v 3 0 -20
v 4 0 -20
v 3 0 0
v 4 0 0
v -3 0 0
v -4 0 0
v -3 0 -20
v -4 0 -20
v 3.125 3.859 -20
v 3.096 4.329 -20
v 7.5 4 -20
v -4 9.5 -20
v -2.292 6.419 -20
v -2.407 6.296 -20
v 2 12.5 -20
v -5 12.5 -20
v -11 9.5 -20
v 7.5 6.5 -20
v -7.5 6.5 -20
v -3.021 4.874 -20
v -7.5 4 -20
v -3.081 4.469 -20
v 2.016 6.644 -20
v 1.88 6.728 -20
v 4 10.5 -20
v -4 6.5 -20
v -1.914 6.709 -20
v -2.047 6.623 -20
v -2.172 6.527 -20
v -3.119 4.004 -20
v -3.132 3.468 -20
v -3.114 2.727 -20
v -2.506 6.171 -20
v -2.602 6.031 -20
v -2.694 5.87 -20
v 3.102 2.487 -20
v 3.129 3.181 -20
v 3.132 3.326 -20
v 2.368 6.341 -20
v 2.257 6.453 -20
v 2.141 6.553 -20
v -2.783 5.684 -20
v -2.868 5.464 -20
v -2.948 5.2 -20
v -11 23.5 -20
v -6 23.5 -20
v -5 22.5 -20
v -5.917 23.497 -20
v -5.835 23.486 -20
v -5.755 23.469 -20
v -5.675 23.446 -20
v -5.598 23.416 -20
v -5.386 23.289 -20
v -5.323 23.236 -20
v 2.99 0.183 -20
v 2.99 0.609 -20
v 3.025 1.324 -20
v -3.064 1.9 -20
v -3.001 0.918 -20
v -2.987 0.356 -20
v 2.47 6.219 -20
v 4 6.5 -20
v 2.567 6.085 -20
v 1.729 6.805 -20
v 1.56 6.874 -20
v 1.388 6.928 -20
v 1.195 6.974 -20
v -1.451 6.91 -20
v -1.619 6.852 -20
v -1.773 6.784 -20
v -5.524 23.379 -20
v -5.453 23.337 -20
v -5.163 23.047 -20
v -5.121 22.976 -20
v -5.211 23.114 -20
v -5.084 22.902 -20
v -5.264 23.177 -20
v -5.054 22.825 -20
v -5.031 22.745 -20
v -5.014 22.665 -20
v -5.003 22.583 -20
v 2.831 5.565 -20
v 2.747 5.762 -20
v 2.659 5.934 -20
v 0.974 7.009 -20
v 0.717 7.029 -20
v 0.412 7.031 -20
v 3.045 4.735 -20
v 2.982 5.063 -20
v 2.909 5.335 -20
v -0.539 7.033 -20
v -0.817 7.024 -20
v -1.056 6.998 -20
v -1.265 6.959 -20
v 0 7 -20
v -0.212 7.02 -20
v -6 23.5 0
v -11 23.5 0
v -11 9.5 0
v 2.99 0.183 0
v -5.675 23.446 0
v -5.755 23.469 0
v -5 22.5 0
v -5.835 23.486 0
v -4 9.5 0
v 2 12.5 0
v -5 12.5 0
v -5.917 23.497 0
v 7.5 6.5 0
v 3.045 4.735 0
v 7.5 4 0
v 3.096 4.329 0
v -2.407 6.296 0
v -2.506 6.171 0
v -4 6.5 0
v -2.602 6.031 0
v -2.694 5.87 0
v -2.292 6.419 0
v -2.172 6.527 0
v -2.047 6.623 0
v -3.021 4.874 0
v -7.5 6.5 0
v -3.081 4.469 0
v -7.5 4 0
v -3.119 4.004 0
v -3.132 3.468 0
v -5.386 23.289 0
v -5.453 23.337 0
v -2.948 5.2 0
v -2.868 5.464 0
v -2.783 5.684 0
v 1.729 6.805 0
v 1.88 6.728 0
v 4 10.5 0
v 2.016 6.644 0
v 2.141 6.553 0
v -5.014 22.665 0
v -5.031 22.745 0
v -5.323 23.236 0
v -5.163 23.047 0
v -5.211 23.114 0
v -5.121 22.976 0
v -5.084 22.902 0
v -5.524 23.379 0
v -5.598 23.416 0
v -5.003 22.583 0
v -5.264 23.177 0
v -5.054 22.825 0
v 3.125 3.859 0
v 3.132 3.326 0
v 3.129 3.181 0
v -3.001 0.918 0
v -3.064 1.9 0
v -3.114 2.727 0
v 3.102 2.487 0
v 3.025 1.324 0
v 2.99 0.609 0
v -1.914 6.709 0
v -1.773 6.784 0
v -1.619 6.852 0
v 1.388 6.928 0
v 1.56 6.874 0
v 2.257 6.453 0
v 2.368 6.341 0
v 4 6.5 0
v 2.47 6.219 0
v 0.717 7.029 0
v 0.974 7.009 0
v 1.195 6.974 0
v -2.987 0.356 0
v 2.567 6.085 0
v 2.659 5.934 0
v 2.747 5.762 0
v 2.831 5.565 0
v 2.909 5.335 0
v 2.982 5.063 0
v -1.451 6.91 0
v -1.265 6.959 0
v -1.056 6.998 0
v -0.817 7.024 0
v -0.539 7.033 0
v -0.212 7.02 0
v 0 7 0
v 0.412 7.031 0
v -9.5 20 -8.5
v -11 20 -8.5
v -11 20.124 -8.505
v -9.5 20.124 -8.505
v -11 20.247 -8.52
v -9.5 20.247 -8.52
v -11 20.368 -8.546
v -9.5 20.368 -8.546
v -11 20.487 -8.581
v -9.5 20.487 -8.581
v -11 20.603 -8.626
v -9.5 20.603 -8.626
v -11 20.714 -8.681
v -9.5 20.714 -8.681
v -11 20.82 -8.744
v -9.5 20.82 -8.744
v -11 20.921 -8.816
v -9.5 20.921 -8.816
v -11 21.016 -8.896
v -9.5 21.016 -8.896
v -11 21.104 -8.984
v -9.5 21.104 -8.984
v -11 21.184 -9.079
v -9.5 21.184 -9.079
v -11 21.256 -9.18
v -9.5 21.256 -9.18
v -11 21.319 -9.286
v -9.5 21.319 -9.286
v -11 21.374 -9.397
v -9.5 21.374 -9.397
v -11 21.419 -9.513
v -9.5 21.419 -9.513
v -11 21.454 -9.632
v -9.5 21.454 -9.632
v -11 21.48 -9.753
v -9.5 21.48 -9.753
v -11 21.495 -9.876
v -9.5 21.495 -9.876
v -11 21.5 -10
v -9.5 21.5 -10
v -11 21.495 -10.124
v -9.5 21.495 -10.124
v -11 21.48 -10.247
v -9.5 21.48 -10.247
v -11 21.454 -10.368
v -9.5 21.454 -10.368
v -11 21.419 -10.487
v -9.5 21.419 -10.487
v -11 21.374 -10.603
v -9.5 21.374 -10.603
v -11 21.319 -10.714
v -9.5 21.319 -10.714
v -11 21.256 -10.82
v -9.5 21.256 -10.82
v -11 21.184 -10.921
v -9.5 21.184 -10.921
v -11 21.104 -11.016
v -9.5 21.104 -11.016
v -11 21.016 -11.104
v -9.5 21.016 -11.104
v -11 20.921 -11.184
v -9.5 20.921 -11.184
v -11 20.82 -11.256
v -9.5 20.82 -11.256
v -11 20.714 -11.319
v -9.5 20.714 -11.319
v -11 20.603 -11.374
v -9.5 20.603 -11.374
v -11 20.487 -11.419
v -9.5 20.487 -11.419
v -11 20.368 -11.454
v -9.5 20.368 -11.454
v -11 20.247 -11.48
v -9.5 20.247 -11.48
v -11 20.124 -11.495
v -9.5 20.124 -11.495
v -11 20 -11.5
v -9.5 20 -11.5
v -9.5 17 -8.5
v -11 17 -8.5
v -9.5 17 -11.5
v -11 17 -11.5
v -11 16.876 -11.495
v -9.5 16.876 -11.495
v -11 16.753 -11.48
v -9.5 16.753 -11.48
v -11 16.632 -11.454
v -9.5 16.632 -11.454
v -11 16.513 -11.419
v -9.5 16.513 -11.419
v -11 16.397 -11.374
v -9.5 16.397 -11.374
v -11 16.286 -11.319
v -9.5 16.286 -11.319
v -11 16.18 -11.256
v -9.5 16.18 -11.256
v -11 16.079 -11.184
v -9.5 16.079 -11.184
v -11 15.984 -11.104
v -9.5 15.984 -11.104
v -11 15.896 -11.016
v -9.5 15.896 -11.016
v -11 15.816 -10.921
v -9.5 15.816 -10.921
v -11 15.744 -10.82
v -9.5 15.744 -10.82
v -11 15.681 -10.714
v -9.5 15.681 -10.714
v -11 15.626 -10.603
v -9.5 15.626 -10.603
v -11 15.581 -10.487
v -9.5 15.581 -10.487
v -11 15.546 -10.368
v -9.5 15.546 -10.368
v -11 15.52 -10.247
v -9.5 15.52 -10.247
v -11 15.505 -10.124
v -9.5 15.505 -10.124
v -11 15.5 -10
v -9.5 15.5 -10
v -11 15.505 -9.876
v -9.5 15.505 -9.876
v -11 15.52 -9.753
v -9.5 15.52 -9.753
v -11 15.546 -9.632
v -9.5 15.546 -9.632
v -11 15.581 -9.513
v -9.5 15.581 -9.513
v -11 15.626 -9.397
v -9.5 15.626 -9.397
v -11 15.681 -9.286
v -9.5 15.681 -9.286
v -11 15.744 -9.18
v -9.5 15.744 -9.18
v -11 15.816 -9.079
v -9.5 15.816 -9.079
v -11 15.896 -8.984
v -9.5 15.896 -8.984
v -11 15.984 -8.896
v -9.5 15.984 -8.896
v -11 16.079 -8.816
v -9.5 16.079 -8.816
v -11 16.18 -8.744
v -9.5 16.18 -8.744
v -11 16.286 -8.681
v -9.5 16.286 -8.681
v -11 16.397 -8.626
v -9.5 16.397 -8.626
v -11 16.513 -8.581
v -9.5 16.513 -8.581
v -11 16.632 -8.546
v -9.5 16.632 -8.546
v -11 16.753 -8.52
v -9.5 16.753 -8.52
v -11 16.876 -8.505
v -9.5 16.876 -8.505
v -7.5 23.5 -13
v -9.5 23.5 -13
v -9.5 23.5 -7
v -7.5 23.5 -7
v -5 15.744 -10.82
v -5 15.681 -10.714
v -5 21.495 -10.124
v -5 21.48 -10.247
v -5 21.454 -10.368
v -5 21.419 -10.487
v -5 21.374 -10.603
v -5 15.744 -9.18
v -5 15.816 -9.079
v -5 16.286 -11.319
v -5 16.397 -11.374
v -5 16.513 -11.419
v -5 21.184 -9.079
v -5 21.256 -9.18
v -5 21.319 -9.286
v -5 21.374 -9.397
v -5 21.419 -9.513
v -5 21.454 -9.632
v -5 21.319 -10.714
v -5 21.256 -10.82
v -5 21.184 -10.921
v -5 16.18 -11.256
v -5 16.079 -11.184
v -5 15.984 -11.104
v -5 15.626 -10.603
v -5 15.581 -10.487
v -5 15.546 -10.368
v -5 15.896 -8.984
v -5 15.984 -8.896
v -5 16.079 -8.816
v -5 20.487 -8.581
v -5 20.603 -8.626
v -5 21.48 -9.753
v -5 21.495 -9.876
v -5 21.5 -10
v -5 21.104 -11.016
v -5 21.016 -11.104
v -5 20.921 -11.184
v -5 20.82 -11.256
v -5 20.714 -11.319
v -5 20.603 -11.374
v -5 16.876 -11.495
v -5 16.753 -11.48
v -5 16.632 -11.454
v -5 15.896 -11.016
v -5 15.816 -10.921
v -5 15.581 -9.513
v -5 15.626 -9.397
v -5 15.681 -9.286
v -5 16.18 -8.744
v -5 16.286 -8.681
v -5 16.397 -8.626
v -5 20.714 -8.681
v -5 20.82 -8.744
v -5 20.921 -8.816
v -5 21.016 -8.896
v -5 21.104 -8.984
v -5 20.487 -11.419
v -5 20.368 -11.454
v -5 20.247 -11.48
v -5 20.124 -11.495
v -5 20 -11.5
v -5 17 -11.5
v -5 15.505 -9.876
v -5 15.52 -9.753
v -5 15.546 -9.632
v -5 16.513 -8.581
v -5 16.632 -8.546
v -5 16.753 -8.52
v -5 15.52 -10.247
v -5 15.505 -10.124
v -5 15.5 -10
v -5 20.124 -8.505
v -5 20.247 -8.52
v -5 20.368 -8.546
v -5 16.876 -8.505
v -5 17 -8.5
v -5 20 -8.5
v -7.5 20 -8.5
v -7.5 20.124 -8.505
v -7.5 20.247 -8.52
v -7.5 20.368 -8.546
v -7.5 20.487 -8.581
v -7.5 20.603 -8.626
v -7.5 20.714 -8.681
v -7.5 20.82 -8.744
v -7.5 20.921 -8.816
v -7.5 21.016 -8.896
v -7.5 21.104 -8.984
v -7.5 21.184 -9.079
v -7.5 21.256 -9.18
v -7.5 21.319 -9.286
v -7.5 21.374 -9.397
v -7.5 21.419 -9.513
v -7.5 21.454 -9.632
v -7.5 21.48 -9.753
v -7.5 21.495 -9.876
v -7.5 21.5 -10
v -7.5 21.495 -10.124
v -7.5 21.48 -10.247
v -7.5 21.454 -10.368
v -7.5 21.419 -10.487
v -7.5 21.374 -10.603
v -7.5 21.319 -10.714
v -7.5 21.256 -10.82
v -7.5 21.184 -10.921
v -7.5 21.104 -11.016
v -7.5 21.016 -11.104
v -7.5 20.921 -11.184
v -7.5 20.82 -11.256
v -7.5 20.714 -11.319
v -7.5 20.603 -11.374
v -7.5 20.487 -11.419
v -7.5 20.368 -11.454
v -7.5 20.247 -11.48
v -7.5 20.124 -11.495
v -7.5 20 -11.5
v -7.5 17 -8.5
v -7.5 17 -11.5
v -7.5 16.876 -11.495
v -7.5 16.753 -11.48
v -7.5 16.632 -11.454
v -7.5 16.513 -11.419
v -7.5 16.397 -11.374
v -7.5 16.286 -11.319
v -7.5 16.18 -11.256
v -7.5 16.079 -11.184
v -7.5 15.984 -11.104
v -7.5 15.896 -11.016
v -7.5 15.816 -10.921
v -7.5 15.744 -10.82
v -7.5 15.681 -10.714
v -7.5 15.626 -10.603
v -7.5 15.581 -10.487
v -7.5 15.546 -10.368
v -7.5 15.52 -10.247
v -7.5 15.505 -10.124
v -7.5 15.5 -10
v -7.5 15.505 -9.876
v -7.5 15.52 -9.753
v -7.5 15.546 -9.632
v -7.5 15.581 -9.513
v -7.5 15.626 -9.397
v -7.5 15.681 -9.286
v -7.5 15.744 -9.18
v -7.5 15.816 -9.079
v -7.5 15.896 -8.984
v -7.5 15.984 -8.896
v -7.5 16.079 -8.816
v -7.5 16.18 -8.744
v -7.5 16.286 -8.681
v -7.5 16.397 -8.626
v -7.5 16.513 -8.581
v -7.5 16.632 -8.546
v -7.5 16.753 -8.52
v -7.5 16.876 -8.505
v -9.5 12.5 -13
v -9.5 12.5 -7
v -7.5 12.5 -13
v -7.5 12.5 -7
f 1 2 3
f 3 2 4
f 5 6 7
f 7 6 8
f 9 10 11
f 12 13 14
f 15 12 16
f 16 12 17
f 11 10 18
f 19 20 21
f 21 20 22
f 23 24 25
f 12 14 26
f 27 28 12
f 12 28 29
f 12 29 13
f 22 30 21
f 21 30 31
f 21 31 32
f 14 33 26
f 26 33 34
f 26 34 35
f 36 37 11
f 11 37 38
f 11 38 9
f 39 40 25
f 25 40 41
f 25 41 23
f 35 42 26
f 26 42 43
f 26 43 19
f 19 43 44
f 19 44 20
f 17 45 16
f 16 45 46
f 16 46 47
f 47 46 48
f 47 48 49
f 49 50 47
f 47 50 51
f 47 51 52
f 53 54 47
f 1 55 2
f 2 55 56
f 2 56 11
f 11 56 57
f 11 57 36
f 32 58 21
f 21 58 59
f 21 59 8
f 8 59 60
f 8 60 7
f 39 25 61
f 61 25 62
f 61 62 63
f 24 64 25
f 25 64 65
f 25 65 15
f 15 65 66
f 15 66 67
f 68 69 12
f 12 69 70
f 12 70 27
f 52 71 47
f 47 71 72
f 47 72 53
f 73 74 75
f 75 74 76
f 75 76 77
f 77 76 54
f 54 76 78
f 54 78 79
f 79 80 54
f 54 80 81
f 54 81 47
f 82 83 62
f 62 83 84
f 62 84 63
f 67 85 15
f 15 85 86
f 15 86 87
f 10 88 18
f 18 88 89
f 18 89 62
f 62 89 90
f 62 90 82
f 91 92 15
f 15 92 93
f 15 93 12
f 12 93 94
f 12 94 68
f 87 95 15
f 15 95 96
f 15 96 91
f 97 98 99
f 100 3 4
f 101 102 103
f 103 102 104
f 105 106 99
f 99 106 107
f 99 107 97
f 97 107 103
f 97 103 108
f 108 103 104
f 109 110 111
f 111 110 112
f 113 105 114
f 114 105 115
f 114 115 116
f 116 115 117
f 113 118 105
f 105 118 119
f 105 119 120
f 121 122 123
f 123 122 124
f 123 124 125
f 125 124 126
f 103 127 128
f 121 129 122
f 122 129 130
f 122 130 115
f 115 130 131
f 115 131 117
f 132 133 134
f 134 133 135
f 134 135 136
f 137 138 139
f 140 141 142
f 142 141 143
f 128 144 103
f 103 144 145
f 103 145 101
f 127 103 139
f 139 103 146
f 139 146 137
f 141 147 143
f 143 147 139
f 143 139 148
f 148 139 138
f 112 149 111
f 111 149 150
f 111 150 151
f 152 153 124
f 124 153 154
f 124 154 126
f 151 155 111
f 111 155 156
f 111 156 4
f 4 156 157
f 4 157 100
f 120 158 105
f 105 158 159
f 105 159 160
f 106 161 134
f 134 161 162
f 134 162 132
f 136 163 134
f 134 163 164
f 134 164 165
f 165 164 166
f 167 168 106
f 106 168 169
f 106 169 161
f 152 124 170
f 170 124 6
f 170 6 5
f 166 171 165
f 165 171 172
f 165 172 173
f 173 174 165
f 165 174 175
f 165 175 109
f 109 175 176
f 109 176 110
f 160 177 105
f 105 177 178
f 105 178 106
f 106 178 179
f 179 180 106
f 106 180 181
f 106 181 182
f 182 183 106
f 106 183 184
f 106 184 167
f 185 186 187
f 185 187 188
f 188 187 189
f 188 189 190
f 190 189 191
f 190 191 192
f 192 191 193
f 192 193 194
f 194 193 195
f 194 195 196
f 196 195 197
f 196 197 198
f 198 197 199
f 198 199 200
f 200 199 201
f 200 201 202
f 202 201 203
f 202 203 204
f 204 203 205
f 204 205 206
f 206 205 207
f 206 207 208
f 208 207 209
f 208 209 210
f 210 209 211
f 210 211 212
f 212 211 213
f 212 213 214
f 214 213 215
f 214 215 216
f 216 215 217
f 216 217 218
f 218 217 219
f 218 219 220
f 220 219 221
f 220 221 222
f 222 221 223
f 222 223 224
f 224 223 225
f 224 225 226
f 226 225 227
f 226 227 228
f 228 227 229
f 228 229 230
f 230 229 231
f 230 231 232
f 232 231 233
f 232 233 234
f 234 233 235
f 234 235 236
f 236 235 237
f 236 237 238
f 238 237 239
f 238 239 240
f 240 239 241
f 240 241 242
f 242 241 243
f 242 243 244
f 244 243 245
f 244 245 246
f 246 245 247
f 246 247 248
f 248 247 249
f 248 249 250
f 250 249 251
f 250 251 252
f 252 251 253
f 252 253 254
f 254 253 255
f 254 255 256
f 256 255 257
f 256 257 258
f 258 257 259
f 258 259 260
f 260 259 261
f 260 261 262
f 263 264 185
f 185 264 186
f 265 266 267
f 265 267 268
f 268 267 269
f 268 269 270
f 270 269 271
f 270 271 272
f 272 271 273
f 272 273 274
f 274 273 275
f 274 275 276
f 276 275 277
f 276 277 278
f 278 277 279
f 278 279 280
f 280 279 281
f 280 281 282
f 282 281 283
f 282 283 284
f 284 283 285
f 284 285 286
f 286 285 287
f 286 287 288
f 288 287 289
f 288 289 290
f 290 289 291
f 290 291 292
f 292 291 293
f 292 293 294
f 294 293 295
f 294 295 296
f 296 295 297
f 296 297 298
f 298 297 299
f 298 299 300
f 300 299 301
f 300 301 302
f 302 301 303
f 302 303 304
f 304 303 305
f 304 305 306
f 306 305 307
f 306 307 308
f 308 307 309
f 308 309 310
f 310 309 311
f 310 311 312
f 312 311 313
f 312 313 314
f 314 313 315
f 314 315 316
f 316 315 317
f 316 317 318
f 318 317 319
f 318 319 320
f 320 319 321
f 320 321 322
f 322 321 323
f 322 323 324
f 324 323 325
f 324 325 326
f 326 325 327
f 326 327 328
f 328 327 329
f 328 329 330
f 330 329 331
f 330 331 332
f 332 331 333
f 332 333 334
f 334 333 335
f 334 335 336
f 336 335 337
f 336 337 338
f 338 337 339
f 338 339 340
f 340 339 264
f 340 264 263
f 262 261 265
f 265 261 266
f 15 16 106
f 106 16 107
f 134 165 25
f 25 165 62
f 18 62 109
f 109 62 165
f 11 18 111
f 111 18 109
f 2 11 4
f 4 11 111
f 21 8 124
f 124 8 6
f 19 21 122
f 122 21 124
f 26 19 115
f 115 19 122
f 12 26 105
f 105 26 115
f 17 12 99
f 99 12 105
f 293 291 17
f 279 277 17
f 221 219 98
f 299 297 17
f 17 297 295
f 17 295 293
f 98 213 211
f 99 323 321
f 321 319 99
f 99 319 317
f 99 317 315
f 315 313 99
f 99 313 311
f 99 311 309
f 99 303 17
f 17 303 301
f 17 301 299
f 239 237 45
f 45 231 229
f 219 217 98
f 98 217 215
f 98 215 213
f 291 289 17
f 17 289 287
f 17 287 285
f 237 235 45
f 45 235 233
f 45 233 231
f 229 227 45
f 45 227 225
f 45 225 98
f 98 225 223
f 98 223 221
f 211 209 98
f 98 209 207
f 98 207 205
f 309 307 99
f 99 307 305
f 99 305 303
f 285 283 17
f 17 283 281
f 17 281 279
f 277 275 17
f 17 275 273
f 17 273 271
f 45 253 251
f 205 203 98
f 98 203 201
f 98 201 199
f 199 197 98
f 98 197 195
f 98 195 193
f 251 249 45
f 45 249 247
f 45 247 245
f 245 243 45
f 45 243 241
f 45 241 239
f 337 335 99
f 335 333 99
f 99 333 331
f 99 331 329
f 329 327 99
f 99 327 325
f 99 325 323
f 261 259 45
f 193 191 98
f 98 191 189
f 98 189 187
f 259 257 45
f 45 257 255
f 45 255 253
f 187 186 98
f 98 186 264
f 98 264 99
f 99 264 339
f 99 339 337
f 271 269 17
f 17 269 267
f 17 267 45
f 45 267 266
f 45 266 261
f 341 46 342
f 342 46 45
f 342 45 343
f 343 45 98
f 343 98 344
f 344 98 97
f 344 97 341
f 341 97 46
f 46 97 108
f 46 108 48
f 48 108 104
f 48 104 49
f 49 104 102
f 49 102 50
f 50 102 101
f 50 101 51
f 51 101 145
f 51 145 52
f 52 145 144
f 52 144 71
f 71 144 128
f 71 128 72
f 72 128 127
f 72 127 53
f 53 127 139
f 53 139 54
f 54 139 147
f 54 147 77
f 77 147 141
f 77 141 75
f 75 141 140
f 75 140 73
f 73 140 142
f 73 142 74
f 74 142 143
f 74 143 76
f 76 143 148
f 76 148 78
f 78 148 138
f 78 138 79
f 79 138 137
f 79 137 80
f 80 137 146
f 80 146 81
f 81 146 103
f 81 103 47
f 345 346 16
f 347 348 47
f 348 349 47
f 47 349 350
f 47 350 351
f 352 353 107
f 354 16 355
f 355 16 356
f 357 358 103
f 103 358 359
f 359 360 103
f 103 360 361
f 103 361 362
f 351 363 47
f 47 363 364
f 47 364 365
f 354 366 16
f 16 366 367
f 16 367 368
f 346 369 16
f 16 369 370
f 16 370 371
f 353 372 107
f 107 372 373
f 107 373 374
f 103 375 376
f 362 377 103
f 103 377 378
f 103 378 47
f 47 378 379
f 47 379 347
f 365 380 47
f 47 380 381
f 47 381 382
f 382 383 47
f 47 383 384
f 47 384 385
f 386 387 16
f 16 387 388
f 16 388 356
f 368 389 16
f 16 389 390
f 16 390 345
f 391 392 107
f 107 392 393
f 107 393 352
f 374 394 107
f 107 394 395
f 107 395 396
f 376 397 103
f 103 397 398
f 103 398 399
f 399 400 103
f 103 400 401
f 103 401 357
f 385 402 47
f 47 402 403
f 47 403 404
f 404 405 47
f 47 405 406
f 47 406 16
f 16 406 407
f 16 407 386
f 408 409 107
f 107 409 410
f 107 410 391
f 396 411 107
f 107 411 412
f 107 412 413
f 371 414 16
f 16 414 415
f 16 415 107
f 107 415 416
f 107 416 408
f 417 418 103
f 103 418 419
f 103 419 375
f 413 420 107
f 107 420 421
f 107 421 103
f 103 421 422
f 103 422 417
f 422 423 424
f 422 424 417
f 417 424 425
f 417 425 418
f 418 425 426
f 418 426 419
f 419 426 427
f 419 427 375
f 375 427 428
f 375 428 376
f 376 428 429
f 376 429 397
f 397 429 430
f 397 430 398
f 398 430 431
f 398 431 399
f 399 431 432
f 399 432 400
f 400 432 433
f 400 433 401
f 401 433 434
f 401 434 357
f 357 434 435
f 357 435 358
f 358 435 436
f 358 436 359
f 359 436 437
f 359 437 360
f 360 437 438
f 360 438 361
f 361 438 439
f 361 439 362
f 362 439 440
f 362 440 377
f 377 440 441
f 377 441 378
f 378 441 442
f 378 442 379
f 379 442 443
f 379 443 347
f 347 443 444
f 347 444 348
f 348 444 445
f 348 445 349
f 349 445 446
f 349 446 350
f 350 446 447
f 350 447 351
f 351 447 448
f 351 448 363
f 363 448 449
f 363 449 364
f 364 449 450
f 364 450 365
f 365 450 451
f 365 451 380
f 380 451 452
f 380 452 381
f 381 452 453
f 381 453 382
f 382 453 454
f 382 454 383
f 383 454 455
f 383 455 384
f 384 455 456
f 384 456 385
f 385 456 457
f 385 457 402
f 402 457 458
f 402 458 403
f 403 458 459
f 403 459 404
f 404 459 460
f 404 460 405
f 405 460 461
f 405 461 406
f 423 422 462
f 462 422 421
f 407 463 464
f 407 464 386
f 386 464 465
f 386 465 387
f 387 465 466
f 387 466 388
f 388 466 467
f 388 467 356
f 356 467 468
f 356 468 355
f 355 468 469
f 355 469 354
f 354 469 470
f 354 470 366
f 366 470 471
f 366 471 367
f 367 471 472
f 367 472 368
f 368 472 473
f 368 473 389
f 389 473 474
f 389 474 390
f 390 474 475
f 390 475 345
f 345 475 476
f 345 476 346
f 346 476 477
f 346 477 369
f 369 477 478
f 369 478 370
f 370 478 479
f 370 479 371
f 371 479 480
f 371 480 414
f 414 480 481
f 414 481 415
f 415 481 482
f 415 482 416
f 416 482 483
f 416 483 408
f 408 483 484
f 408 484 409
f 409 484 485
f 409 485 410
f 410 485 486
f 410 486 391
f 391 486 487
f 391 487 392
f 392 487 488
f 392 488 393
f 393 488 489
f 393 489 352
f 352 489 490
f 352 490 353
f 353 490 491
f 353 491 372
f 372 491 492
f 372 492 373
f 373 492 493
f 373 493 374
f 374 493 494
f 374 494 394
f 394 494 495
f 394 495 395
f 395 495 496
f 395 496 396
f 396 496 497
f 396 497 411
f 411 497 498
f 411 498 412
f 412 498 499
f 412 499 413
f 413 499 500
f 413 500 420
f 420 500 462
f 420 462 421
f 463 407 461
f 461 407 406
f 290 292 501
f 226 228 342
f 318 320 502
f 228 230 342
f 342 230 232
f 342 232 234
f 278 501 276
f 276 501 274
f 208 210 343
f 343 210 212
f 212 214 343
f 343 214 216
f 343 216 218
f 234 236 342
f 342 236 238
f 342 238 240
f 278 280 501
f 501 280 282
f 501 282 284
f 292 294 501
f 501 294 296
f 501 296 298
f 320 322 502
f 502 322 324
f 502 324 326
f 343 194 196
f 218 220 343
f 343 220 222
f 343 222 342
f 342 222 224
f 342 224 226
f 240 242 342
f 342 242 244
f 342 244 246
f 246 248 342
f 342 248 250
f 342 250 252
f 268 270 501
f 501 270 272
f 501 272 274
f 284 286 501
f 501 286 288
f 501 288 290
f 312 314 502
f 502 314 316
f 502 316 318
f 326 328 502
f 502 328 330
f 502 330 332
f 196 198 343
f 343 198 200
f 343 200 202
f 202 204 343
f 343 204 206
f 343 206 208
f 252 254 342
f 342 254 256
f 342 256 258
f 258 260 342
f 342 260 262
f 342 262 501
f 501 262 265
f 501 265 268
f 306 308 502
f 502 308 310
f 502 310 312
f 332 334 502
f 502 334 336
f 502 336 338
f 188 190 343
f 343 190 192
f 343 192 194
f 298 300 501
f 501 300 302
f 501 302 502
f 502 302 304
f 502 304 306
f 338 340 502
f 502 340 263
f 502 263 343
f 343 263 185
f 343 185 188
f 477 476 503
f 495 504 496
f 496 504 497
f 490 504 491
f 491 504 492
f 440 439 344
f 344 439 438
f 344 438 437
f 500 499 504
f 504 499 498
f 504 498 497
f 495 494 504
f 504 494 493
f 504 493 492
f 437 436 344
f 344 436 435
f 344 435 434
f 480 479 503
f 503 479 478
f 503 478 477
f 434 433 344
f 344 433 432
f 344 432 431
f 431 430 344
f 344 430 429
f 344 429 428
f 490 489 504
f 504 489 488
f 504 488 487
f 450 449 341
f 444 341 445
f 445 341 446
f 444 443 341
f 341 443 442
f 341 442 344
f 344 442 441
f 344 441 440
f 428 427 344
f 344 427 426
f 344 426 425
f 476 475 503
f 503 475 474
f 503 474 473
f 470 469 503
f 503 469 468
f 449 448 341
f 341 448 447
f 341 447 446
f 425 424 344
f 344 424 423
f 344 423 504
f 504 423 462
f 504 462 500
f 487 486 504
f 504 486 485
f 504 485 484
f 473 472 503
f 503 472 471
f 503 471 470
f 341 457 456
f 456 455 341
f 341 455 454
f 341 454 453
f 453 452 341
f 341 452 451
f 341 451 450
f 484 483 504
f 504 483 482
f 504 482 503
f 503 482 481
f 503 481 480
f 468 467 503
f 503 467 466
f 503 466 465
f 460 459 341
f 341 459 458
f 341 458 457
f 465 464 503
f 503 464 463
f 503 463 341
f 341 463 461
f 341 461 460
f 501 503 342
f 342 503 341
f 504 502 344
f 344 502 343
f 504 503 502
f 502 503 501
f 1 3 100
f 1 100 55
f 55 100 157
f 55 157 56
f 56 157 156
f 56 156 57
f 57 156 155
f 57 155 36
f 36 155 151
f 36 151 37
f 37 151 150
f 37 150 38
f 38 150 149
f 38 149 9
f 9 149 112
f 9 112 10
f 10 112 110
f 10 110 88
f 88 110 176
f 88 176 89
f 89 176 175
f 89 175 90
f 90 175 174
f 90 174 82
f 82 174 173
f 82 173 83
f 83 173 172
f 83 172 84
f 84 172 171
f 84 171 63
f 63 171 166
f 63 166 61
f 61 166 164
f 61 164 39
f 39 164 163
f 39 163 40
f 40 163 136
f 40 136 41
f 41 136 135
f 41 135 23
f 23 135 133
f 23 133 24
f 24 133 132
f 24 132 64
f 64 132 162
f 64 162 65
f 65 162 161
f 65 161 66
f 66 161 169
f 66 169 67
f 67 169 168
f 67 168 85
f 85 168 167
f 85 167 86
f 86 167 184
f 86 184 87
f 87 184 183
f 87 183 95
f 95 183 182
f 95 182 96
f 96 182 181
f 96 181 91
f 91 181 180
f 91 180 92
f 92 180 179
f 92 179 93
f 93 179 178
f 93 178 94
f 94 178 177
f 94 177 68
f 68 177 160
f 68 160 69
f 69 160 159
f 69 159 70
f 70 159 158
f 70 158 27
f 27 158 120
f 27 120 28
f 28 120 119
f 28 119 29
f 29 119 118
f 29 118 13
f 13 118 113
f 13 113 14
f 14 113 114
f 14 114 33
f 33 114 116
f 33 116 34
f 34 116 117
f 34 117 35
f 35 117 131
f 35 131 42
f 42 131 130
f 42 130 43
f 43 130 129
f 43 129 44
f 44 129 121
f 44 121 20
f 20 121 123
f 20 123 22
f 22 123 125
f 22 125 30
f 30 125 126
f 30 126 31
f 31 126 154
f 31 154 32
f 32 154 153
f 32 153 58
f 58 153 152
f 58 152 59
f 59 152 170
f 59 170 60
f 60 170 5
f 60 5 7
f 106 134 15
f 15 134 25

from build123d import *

# Parameters (mm, degrees)
ESTRUSIONE_ESTRUSIONE1_DEPTH  = 20
TAGLIO_ESTRUSIONE1_REACH      = 37.979
SCHIZZO12_W                   = 2
SCHIZZO12_H                   = 6
TAGLIO_ESTRUSIONE2_DEPTH      = 11
TAGLIO_ESTRUSIONE3_DEPTH      = 33.760494502
TAGLIO_ESTRUSIONE3_DEPTH_BACK = 33.760494502
SMUSSO1_SIZE                  = 2


with BuildPart() as part:
    # Schizzo2 → Estrusione-Estrusione1 (new body)
    with BuildSketch(Plane.XY):
        with BuildLine():
            Line((-4, 9.5), (-11, 9.5))
            Line((-11, 9.5), (-11, 23.5))
            Line((-11, 23.5), (-6, 23.5))
            ThreePointArc((-6, 23.5), (-5.292893219, 23.207106781), (-5, 22.5))
            Line((-5, 22.5), (-5, 12.5))
            Line((-5, 12.5), (4, 12.5))
            Line((4, 12.5), (4, 9.5))
            Line((4, 9.5), (4, 6.5))
            Line((4, 6.5), (7.5, 6.5))
            Line((7.5, 6.5), (7.5, 4))
            Line((7.5, 4), (4, 0))
            Line((4, 0), (-4, 0))
            Line((-4, 0), (-7.5, 4))
            Line((-7.5, 4), (-7.5, 6.5))
            Line((-7.5, 6.5), (-4, 6.5))
            Line((-4, 6.5), (-4, 9.5))
        make_face()
    extrude(amount=-ESTRUSIONE_ESTRUSIONE1_DEPTH)

    # Schizzo6 → Taglio-Estrusione1 (cut, up to next)
    with BuildSketch(Plane.ZY.offset(11), mode=Mode.PRIVATE) as taglio_estrusione1_sk1:
        with BuildLine():
            Line((-8.5, 20), (-8.5, 17))
            ThreePointArc((-8.5, 17), (-10, 15.5), (-11.5, 17))
            Line((-11.5, 17), (-11.5, 20))
            ThreePointArc((-11.5, 20), (-10, 21.5), (-8.5, 20))
        make_face()
    taglio_estrusione1_tool1 = extrude(taglio_estrusione1_sk1.sketch, amount=-TAGLIO_ESTRUSIONE1_REACH, mode=Mode.PRIVATE) & part.part
    add(taglio_estrusione1_tool1.solids().sort_by_distance((-11, 18.5, -10))[0], mode=Mode.SUBTRACT)

    # Schizzo12 → Taglio-Estrusione2 (cut)
    with BuildSketch(Plane(origin=(0, 23.5, 0), x_dir=(1, 0, 0), z_dir=(0, 1, 0))):
        with Locations((-8.5, 10)):
            Rectangle(SCHIZZO12_W, SCHIZZO12_H)
    extrude(amount=-TAGLIO_ESTRUSIONE2_DEPTH, mode=Mode.SUBTRACT)

    # Schizzo13 → Taglio-Estrusione3 (cut, two sides: drawn at the far end of the back side and taken through both)
    with BuildSketch(Plane(origin=(0, 0, -20), x_dir=(-1, 0, 0), z_dir=(0, 0, -1)).offset(-TAGLIO_ESTRUSIONE3_DEPTH_BACK)):
        with BuildLine():
            add(Edge.make_bspline(
                [(-3, 0), (-2.831721027, 2.145011642), (-4.377617752, 7.500745545), (0, 7)],
                knots=[0, 0, 0, 0, 1, 1, 1, 1], degree=3))
            Line((-3, 0), (3, 0))
            add(Edge.make_bspline(
                [(3, 0), (2.831721027, 2.145011642), (4.377617752, 7.500745545), (0, 7)],
                knots=[0, 0, 0, 0, 1, 1, 1, 1], degree=3))
        make_face()
    extrude(amount=TAGLIO_ESTRUSIONE3_DEPTH + TAGLIO_ESTRUSIONE3_DEPTH_BACK, mode=Mode.SUBTRACT)

    # Smusso1
    smusso1_edges = [part.edges().sort_by_distance(p)[0] for p in [
        (4, 12.5, -10),
    ]]
    chamfer(smusso1_edges, length=SMUSSO1_SIZE)


solid = part.part
